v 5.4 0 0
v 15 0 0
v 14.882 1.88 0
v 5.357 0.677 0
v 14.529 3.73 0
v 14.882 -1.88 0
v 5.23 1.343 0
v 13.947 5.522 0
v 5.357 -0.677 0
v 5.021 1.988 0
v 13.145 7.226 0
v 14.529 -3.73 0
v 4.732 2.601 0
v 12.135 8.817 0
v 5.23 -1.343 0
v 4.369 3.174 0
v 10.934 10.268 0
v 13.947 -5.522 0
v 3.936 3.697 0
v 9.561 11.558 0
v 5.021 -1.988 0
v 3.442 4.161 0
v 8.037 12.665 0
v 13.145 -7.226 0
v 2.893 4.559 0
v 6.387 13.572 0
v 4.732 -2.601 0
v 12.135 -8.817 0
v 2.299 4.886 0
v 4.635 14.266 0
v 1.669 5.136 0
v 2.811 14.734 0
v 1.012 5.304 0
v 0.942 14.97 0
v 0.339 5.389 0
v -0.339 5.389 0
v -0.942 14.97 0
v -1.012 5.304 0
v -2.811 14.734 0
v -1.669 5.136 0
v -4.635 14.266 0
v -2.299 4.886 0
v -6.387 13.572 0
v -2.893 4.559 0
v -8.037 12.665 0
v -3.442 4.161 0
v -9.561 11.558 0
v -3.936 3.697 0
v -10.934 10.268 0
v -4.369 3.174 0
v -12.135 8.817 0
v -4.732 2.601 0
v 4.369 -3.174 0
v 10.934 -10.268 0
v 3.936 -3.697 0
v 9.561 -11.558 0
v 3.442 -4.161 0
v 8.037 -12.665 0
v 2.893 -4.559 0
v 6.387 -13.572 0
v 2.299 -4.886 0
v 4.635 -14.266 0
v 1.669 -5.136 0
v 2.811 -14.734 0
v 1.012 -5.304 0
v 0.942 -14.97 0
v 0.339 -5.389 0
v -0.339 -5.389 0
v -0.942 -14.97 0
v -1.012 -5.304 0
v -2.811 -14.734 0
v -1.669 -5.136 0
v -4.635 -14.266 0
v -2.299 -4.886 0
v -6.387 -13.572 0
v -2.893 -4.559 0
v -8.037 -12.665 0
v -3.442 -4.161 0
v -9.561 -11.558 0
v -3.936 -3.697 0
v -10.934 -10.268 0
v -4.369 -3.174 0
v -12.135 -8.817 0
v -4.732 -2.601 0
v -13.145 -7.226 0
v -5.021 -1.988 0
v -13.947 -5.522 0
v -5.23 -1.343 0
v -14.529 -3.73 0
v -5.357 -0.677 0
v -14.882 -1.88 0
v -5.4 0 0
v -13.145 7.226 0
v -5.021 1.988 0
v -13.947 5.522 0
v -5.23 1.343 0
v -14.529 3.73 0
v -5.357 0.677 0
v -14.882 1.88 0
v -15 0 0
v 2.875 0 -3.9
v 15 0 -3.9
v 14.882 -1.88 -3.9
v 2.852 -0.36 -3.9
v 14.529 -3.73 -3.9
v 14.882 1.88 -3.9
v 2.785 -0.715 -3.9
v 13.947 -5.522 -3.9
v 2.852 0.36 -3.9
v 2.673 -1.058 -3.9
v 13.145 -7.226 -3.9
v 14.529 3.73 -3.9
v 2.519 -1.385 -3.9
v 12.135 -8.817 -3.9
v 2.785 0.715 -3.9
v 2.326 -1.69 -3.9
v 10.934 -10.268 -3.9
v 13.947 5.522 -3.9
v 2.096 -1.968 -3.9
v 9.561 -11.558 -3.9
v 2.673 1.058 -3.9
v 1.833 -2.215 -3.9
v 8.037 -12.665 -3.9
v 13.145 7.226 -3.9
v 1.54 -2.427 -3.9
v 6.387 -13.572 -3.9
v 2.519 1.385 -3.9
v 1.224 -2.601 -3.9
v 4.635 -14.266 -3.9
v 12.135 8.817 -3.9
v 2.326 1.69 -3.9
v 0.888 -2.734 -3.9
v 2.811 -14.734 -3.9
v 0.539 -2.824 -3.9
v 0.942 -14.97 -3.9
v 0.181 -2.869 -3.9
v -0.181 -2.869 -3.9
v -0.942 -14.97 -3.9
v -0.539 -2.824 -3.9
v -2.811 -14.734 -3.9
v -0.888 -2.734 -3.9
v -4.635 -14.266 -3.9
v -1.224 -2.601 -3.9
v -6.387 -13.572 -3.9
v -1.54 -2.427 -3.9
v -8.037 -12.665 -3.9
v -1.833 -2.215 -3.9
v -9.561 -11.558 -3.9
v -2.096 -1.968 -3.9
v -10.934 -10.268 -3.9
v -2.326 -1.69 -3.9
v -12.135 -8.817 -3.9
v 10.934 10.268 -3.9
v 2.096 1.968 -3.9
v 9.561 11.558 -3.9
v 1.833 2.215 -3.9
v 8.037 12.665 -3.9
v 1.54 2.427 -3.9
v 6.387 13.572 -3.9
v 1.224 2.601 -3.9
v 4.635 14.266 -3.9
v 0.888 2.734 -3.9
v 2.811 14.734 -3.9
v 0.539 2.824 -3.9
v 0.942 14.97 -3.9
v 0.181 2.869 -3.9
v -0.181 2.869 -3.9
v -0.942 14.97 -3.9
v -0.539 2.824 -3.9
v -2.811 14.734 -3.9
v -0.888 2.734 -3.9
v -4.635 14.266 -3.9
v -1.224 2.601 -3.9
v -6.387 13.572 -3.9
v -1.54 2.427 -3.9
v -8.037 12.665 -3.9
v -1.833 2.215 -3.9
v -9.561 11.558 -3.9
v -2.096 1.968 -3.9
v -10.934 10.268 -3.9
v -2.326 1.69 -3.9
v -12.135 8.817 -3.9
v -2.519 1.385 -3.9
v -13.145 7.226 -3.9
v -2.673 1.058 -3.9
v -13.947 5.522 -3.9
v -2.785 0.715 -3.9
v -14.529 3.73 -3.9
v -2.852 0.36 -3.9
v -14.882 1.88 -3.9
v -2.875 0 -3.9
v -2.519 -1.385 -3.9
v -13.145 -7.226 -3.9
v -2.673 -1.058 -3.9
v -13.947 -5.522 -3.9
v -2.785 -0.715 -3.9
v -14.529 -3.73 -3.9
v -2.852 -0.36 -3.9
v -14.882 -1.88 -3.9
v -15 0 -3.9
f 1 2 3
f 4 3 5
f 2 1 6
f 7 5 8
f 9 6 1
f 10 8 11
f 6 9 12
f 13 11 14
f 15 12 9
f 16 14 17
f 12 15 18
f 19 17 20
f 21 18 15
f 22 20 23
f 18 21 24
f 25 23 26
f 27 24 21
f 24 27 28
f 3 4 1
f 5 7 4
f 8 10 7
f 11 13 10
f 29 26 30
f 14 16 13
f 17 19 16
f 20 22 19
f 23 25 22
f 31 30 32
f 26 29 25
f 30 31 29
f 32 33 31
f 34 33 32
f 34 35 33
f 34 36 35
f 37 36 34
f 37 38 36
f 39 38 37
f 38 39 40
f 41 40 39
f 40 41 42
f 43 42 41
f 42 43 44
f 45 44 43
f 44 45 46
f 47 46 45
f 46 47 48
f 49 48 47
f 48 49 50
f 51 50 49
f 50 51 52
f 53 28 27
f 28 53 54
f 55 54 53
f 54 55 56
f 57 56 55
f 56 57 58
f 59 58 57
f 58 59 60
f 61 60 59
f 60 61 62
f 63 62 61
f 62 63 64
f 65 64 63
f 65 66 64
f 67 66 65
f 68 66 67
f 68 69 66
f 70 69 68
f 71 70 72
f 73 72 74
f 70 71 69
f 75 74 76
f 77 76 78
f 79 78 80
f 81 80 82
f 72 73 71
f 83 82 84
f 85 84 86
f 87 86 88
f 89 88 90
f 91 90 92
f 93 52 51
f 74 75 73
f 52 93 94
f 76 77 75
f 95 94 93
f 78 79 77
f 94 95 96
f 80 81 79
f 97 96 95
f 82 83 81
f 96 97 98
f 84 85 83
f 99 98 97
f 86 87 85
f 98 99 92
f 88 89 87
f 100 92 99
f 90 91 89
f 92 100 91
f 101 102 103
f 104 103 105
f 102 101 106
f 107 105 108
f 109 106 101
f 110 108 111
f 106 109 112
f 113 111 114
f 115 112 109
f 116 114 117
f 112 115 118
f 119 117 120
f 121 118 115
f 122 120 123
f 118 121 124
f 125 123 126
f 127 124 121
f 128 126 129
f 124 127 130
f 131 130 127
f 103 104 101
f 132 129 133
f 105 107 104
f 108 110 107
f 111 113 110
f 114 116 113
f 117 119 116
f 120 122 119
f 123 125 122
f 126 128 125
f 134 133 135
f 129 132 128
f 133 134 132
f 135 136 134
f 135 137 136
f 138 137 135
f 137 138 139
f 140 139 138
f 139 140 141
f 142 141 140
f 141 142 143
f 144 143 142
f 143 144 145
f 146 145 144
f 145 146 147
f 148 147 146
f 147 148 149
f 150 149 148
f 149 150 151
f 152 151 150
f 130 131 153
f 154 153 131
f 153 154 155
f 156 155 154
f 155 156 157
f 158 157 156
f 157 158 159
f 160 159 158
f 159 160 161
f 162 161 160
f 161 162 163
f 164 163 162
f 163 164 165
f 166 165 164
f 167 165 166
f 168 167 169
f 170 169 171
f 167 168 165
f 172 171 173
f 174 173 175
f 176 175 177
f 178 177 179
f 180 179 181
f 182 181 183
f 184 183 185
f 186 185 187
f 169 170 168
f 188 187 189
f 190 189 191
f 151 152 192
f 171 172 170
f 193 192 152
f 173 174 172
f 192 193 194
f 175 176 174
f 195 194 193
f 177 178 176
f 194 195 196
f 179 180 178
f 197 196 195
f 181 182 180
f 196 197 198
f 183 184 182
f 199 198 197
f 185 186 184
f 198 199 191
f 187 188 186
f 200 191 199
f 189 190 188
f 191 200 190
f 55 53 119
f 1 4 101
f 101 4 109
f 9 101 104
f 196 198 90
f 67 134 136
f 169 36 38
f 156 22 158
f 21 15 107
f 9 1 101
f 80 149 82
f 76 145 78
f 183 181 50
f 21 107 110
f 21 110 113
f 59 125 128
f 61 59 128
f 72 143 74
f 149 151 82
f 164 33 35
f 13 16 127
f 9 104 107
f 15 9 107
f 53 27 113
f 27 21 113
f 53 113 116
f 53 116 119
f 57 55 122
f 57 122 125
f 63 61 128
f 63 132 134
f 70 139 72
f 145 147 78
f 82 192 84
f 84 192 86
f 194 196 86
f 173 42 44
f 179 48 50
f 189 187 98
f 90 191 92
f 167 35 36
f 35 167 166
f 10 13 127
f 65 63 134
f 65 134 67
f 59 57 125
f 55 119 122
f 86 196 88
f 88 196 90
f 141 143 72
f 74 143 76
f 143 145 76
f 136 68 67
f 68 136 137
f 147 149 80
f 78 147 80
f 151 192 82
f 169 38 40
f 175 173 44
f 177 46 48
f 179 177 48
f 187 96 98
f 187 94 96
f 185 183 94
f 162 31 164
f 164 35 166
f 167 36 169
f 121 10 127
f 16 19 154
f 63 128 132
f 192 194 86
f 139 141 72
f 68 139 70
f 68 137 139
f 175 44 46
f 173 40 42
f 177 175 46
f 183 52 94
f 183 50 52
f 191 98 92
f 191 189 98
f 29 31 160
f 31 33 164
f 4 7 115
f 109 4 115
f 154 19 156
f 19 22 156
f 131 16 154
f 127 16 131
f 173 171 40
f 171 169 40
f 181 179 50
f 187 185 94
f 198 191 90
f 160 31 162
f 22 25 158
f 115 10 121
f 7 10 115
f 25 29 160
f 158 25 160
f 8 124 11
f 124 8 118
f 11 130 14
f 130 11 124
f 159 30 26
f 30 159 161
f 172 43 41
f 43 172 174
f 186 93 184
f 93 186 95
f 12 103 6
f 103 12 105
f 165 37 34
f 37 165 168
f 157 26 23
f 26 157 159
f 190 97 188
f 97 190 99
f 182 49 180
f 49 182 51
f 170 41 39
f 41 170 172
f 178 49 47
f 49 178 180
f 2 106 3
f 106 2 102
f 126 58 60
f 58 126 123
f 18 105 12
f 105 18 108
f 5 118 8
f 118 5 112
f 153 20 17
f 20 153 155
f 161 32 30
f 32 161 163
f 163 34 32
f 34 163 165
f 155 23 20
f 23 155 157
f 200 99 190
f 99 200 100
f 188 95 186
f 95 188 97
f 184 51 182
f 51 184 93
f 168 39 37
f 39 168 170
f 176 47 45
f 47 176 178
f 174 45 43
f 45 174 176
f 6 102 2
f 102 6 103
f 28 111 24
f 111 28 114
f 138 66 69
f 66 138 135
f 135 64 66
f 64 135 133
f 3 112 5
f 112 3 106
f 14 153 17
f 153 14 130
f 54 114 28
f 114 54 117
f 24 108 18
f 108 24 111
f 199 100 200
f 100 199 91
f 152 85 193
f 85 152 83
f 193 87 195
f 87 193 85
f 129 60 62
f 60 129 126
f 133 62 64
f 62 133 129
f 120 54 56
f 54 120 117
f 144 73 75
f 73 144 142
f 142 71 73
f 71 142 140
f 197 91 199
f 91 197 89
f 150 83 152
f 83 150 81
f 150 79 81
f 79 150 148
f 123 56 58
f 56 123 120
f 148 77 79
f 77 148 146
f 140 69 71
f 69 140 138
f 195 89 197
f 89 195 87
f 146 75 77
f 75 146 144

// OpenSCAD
$fn = 50;


difference() {
	union() {
		translate(v = [0, 0, -3.9000000000]) {
			cylinder(h = 3.9000000000, r = 15.0000000000);
		}
	}
	union() {
		translate(v = [0, 0, 0]) {
			rotate(a = [0, 0, 0]) {
				difference() {
					union() {
						#translate(v = [0, 0, -3.9000000000]) {
							cylinder(h = 3.9000000000, r = 2.6000000000);
						}
						#translate(v = [0, 0, -3.9000000000]) {
							cylinder(h = 3.9000000000, r1 = 2.8750000000, r2 = 5.4000000000);
						}
						#translate(v = [0, 0, -3.9000000000]) {
							cylinder(h = 3.9000000000, r = 2.8750000000);
						}
						#translate(v = [0, 0, -3.9000000000]) {
							cylinder(h = 3.9000000000, r = 2.6000000000);
						}
					}
					union();
				}
			}
		}
	}
}
